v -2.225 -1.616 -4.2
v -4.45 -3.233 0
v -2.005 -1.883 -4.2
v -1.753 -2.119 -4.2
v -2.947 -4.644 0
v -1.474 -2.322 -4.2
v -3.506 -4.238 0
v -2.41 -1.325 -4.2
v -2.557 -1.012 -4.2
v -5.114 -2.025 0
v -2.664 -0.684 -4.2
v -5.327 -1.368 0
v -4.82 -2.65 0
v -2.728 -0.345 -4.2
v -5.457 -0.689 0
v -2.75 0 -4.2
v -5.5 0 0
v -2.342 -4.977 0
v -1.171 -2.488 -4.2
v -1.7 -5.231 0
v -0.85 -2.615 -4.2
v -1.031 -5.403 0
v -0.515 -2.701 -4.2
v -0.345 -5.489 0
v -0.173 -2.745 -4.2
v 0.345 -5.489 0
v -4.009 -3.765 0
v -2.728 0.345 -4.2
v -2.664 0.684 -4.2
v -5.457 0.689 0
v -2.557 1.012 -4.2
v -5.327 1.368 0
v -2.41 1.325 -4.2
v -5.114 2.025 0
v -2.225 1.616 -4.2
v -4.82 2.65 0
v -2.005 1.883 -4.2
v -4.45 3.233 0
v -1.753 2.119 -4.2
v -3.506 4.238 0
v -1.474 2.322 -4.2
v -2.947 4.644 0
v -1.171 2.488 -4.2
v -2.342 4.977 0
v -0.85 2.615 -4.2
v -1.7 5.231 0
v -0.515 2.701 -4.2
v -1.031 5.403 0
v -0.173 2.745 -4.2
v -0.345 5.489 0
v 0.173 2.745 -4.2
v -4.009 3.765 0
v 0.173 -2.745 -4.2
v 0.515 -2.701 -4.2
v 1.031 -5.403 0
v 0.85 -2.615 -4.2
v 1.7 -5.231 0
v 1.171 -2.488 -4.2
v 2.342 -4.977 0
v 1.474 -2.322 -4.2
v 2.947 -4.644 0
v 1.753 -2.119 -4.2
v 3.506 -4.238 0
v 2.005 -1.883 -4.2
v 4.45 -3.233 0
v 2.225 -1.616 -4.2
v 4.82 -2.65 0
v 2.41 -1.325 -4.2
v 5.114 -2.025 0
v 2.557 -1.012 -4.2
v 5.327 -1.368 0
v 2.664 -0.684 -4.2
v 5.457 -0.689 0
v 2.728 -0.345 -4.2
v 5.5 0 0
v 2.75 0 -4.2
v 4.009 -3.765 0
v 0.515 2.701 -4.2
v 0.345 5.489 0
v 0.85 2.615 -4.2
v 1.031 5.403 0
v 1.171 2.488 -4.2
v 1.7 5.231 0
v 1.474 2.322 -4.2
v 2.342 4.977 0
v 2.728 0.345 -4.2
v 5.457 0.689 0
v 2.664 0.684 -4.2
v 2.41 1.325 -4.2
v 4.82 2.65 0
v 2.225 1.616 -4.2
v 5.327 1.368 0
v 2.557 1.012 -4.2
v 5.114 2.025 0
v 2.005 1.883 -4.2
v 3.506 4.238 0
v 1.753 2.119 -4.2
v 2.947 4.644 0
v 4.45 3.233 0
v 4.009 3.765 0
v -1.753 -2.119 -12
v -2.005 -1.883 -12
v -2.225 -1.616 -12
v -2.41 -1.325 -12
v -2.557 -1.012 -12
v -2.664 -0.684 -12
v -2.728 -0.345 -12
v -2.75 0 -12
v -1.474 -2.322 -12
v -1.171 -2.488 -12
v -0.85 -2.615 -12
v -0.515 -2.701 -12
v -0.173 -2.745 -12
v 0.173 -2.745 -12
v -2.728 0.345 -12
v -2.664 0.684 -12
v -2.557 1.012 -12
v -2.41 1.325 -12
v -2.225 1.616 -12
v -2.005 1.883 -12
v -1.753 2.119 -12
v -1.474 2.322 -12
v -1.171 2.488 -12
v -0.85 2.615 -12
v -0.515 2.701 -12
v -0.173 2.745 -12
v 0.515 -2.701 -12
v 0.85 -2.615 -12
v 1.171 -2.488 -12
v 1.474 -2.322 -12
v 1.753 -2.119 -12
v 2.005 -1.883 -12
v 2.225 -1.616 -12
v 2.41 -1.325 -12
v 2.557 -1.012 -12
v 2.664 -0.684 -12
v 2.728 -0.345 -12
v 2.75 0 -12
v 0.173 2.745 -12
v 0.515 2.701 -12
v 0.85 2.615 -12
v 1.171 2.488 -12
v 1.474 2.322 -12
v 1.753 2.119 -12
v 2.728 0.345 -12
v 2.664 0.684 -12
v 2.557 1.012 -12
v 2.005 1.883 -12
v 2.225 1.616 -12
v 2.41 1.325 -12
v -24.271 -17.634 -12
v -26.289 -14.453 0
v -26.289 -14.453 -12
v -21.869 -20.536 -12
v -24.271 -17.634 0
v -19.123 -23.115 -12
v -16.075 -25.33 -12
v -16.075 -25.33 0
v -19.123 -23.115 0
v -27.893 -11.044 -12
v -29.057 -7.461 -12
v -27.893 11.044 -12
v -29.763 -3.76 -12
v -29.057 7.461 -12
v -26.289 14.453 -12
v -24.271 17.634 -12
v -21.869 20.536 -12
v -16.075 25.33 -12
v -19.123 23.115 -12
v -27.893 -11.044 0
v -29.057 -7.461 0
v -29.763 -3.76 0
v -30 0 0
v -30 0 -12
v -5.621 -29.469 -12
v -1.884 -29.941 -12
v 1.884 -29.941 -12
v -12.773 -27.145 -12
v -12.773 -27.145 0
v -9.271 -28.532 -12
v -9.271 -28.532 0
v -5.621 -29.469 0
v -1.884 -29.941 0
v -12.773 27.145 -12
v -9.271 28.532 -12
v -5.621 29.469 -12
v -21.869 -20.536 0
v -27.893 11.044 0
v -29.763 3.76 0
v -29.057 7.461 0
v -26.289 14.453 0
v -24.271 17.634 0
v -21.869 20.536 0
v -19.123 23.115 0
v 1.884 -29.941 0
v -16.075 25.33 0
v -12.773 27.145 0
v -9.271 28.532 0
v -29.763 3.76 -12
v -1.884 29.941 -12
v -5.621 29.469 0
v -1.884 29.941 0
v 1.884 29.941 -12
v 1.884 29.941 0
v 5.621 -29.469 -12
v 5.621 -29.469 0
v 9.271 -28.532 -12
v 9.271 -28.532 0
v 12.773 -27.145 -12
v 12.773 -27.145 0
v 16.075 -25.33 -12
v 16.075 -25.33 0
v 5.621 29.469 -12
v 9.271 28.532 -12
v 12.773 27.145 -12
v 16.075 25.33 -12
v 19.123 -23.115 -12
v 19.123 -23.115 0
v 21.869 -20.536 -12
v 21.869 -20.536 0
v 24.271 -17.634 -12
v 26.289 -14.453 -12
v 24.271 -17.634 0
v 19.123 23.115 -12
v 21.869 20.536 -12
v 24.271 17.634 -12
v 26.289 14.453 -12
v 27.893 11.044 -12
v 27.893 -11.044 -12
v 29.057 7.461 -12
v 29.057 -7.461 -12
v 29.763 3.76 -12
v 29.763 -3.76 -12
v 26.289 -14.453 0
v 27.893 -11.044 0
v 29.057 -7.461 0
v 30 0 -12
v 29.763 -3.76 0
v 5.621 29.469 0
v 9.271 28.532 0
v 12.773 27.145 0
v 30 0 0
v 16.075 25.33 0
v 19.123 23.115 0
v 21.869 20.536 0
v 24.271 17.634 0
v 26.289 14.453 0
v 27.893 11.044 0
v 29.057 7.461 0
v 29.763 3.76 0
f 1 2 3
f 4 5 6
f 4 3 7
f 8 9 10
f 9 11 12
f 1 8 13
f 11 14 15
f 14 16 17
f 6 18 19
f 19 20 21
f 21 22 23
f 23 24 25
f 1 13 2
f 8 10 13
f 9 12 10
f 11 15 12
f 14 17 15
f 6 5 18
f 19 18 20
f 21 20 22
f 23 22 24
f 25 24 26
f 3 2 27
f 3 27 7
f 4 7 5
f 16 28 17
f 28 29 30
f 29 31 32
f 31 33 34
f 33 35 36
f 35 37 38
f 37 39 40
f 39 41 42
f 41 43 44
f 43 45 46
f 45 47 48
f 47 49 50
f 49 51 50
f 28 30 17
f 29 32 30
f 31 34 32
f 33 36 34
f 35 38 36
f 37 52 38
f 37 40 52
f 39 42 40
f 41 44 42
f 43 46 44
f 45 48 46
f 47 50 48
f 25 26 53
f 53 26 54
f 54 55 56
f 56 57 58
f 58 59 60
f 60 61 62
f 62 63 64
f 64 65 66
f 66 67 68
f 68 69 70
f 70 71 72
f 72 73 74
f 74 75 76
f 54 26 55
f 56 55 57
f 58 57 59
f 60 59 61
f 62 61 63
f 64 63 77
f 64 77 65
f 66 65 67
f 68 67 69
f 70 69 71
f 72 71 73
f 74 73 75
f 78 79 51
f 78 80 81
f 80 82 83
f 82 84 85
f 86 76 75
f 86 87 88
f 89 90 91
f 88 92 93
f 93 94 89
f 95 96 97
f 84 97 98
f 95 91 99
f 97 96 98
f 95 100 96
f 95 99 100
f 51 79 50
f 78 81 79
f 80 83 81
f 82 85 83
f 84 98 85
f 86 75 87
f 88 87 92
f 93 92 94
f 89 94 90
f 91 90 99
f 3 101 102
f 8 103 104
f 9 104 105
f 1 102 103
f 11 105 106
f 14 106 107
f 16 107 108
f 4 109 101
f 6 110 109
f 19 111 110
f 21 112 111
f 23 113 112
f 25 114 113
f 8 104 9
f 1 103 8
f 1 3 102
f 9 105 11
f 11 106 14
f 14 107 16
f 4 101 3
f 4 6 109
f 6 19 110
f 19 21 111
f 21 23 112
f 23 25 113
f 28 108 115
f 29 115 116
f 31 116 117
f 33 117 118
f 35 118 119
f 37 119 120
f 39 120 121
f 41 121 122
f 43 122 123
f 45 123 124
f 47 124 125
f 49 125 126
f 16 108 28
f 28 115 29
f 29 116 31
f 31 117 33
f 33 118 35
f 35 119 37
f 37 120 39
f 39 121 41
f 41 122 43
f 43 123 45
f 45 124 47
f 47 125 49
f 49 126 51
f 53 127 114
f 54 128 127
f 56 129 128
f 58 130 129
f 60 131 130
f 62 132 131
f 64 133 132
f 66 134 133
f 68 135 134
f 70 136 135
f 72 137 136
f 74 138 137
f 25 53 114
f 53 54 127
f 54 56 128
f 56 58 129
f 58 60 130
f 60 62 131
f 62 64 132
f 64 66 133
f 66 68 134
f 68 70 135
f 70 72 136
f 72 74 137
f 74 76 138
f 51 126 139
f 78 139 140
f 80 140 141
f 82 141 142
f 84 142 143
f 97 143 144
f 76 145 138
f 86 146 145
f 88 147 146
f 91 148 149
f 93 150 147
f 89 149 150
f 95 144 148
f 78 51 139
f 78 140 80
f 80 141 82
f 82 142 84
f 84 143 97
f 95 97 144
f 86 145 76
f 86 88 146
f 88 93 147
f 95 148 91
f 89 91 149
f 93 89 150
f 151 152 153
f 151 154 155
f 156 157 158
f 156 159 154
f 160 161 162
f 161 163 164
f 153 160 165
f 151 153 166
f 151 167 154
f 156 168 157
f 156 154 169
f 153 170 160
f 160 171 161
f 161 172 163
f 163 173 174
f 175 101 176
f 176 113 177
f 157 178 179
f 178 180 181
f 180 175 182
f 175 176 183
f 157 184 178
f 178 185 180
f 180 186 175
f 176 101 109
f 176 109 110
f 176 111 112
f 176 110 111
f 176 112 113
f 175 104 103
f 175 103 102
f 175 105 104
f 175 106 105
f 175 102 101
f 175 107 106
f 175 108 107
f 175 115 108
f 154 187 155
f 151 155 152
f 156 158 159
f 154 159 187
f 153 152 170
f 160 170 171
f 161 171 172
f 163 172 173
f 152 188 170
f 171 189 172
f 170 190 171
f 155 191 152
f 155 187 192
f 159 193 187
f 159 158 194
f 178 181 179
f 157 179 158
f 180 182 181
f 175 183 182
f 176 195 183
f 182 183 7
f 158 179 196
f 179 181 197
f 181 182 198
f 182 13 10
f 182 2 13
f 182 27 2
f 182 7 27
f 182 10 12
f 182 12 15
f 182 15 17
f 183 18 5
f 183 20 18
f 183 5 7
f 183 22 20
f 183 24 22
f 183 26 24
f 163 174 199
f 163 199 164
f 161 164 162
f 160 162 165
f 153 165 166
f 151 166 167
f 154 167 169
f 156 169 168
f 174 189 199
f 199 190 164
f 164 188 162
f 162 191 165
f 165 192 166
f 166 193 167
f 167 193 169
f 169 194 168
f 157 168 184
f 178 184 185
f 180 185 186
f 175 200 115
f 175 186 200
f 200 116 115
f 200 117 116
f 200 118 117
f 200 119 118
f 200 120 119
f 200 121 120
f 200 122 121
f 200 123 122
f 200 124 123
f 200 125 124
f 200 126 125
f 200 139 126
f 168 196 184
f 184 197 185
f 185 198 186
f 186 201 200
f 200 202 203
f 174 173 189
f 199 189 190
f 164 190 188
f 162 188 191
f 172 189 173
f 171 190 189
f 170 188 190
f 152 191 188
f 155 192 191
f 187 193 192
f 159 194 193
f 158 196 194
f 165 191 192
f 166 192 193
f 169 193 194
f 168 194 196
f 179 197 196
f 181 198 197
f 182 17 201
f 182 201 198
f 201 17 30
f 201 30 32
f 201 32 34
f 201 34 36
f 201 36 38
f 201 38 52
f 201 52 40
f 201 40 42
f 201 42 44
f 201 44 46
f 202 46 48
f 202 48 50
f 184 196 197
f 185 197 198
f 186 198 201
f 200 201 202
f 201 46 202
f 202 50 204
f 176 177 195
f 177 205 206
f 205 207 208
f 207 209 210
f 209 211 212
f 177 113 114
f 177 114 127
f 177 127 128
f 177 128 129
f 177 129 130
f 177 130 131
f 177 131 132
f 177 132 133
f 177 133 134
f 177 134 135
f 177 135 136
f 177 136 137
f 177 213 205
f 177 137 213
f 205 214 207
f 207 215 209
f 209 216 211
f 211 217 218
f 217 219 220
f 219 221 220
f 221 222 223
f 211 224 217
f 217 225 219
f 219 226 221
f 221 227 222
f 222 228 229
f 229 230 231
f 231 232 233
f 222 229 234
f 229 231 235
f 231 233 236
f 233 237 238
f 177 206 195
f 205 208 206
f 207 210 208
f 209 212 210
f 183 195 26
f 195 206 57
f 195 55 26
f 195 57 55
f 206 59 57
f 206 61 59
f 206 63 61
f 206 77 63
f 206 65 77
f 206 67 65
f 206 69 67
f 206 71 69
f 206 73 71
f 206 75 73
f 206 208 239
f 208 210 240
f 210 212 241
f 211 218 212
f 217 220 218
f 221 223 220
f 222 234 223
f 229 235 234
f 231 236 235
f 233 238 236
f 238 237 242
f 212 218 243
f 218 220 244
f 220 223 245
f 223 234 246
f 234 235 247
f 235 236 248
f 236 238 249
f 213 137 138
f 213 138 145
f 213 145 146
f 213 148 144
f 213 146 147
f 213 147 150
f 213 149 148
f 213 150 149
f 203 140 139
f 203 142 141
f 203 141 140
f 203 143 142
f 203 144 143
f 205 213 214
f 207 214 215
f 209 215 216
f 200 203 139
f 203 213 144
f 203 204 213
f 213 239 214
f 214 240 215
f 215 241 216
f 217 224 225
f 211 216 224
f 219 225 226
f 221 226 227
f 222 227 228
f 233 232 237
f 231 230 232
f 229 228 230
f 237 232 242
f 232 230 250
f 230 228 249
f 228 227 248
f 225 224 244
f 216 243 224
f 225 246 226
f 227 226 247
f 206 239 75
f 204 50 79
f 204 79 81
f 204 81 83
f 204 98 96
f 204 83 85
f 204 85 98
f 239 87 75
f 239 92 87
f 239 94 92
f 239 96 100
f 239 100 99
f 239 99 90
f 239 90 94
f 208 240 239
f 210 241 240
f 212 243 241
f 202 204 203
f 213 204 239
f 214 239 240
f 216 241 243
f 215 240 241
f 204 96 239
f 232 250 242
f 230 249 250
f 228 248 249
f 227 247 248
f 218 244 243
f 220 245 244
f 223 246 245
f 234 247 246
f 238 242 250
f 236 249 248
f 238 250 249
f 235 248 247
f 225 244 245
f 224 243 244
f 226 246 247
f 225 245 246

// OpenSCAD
$fn = 50;

difference() {
	union() {
		translate(v = [0, 0, -12.0]) {
			cylinder(h = 12, r = 30.0);
		}
	}
	union() {
		translate(v = [0, 0, 0]) {
			rotate(a = [0, 0, 0]) {
				difference() {
					union() {
						translate(v = [0, 0, -15.0]) {
							cylinder(h = 15, r = 2.25);
						}
						translate(v = [0, 0, -4.2]) {
							cylinder(h = 4.2, r1 = 2.75, r2 = 5.5);
						}
						translate(v = [0, 0, -15.0]) {
							cylinder(h = 15, r = 2.75);
						}
						translate(v = [0, 0, -15.0]) {
							cylinder(h = 15, r = 2.25);
						}
					}
					union();
				}
			}
		}
	}
}
